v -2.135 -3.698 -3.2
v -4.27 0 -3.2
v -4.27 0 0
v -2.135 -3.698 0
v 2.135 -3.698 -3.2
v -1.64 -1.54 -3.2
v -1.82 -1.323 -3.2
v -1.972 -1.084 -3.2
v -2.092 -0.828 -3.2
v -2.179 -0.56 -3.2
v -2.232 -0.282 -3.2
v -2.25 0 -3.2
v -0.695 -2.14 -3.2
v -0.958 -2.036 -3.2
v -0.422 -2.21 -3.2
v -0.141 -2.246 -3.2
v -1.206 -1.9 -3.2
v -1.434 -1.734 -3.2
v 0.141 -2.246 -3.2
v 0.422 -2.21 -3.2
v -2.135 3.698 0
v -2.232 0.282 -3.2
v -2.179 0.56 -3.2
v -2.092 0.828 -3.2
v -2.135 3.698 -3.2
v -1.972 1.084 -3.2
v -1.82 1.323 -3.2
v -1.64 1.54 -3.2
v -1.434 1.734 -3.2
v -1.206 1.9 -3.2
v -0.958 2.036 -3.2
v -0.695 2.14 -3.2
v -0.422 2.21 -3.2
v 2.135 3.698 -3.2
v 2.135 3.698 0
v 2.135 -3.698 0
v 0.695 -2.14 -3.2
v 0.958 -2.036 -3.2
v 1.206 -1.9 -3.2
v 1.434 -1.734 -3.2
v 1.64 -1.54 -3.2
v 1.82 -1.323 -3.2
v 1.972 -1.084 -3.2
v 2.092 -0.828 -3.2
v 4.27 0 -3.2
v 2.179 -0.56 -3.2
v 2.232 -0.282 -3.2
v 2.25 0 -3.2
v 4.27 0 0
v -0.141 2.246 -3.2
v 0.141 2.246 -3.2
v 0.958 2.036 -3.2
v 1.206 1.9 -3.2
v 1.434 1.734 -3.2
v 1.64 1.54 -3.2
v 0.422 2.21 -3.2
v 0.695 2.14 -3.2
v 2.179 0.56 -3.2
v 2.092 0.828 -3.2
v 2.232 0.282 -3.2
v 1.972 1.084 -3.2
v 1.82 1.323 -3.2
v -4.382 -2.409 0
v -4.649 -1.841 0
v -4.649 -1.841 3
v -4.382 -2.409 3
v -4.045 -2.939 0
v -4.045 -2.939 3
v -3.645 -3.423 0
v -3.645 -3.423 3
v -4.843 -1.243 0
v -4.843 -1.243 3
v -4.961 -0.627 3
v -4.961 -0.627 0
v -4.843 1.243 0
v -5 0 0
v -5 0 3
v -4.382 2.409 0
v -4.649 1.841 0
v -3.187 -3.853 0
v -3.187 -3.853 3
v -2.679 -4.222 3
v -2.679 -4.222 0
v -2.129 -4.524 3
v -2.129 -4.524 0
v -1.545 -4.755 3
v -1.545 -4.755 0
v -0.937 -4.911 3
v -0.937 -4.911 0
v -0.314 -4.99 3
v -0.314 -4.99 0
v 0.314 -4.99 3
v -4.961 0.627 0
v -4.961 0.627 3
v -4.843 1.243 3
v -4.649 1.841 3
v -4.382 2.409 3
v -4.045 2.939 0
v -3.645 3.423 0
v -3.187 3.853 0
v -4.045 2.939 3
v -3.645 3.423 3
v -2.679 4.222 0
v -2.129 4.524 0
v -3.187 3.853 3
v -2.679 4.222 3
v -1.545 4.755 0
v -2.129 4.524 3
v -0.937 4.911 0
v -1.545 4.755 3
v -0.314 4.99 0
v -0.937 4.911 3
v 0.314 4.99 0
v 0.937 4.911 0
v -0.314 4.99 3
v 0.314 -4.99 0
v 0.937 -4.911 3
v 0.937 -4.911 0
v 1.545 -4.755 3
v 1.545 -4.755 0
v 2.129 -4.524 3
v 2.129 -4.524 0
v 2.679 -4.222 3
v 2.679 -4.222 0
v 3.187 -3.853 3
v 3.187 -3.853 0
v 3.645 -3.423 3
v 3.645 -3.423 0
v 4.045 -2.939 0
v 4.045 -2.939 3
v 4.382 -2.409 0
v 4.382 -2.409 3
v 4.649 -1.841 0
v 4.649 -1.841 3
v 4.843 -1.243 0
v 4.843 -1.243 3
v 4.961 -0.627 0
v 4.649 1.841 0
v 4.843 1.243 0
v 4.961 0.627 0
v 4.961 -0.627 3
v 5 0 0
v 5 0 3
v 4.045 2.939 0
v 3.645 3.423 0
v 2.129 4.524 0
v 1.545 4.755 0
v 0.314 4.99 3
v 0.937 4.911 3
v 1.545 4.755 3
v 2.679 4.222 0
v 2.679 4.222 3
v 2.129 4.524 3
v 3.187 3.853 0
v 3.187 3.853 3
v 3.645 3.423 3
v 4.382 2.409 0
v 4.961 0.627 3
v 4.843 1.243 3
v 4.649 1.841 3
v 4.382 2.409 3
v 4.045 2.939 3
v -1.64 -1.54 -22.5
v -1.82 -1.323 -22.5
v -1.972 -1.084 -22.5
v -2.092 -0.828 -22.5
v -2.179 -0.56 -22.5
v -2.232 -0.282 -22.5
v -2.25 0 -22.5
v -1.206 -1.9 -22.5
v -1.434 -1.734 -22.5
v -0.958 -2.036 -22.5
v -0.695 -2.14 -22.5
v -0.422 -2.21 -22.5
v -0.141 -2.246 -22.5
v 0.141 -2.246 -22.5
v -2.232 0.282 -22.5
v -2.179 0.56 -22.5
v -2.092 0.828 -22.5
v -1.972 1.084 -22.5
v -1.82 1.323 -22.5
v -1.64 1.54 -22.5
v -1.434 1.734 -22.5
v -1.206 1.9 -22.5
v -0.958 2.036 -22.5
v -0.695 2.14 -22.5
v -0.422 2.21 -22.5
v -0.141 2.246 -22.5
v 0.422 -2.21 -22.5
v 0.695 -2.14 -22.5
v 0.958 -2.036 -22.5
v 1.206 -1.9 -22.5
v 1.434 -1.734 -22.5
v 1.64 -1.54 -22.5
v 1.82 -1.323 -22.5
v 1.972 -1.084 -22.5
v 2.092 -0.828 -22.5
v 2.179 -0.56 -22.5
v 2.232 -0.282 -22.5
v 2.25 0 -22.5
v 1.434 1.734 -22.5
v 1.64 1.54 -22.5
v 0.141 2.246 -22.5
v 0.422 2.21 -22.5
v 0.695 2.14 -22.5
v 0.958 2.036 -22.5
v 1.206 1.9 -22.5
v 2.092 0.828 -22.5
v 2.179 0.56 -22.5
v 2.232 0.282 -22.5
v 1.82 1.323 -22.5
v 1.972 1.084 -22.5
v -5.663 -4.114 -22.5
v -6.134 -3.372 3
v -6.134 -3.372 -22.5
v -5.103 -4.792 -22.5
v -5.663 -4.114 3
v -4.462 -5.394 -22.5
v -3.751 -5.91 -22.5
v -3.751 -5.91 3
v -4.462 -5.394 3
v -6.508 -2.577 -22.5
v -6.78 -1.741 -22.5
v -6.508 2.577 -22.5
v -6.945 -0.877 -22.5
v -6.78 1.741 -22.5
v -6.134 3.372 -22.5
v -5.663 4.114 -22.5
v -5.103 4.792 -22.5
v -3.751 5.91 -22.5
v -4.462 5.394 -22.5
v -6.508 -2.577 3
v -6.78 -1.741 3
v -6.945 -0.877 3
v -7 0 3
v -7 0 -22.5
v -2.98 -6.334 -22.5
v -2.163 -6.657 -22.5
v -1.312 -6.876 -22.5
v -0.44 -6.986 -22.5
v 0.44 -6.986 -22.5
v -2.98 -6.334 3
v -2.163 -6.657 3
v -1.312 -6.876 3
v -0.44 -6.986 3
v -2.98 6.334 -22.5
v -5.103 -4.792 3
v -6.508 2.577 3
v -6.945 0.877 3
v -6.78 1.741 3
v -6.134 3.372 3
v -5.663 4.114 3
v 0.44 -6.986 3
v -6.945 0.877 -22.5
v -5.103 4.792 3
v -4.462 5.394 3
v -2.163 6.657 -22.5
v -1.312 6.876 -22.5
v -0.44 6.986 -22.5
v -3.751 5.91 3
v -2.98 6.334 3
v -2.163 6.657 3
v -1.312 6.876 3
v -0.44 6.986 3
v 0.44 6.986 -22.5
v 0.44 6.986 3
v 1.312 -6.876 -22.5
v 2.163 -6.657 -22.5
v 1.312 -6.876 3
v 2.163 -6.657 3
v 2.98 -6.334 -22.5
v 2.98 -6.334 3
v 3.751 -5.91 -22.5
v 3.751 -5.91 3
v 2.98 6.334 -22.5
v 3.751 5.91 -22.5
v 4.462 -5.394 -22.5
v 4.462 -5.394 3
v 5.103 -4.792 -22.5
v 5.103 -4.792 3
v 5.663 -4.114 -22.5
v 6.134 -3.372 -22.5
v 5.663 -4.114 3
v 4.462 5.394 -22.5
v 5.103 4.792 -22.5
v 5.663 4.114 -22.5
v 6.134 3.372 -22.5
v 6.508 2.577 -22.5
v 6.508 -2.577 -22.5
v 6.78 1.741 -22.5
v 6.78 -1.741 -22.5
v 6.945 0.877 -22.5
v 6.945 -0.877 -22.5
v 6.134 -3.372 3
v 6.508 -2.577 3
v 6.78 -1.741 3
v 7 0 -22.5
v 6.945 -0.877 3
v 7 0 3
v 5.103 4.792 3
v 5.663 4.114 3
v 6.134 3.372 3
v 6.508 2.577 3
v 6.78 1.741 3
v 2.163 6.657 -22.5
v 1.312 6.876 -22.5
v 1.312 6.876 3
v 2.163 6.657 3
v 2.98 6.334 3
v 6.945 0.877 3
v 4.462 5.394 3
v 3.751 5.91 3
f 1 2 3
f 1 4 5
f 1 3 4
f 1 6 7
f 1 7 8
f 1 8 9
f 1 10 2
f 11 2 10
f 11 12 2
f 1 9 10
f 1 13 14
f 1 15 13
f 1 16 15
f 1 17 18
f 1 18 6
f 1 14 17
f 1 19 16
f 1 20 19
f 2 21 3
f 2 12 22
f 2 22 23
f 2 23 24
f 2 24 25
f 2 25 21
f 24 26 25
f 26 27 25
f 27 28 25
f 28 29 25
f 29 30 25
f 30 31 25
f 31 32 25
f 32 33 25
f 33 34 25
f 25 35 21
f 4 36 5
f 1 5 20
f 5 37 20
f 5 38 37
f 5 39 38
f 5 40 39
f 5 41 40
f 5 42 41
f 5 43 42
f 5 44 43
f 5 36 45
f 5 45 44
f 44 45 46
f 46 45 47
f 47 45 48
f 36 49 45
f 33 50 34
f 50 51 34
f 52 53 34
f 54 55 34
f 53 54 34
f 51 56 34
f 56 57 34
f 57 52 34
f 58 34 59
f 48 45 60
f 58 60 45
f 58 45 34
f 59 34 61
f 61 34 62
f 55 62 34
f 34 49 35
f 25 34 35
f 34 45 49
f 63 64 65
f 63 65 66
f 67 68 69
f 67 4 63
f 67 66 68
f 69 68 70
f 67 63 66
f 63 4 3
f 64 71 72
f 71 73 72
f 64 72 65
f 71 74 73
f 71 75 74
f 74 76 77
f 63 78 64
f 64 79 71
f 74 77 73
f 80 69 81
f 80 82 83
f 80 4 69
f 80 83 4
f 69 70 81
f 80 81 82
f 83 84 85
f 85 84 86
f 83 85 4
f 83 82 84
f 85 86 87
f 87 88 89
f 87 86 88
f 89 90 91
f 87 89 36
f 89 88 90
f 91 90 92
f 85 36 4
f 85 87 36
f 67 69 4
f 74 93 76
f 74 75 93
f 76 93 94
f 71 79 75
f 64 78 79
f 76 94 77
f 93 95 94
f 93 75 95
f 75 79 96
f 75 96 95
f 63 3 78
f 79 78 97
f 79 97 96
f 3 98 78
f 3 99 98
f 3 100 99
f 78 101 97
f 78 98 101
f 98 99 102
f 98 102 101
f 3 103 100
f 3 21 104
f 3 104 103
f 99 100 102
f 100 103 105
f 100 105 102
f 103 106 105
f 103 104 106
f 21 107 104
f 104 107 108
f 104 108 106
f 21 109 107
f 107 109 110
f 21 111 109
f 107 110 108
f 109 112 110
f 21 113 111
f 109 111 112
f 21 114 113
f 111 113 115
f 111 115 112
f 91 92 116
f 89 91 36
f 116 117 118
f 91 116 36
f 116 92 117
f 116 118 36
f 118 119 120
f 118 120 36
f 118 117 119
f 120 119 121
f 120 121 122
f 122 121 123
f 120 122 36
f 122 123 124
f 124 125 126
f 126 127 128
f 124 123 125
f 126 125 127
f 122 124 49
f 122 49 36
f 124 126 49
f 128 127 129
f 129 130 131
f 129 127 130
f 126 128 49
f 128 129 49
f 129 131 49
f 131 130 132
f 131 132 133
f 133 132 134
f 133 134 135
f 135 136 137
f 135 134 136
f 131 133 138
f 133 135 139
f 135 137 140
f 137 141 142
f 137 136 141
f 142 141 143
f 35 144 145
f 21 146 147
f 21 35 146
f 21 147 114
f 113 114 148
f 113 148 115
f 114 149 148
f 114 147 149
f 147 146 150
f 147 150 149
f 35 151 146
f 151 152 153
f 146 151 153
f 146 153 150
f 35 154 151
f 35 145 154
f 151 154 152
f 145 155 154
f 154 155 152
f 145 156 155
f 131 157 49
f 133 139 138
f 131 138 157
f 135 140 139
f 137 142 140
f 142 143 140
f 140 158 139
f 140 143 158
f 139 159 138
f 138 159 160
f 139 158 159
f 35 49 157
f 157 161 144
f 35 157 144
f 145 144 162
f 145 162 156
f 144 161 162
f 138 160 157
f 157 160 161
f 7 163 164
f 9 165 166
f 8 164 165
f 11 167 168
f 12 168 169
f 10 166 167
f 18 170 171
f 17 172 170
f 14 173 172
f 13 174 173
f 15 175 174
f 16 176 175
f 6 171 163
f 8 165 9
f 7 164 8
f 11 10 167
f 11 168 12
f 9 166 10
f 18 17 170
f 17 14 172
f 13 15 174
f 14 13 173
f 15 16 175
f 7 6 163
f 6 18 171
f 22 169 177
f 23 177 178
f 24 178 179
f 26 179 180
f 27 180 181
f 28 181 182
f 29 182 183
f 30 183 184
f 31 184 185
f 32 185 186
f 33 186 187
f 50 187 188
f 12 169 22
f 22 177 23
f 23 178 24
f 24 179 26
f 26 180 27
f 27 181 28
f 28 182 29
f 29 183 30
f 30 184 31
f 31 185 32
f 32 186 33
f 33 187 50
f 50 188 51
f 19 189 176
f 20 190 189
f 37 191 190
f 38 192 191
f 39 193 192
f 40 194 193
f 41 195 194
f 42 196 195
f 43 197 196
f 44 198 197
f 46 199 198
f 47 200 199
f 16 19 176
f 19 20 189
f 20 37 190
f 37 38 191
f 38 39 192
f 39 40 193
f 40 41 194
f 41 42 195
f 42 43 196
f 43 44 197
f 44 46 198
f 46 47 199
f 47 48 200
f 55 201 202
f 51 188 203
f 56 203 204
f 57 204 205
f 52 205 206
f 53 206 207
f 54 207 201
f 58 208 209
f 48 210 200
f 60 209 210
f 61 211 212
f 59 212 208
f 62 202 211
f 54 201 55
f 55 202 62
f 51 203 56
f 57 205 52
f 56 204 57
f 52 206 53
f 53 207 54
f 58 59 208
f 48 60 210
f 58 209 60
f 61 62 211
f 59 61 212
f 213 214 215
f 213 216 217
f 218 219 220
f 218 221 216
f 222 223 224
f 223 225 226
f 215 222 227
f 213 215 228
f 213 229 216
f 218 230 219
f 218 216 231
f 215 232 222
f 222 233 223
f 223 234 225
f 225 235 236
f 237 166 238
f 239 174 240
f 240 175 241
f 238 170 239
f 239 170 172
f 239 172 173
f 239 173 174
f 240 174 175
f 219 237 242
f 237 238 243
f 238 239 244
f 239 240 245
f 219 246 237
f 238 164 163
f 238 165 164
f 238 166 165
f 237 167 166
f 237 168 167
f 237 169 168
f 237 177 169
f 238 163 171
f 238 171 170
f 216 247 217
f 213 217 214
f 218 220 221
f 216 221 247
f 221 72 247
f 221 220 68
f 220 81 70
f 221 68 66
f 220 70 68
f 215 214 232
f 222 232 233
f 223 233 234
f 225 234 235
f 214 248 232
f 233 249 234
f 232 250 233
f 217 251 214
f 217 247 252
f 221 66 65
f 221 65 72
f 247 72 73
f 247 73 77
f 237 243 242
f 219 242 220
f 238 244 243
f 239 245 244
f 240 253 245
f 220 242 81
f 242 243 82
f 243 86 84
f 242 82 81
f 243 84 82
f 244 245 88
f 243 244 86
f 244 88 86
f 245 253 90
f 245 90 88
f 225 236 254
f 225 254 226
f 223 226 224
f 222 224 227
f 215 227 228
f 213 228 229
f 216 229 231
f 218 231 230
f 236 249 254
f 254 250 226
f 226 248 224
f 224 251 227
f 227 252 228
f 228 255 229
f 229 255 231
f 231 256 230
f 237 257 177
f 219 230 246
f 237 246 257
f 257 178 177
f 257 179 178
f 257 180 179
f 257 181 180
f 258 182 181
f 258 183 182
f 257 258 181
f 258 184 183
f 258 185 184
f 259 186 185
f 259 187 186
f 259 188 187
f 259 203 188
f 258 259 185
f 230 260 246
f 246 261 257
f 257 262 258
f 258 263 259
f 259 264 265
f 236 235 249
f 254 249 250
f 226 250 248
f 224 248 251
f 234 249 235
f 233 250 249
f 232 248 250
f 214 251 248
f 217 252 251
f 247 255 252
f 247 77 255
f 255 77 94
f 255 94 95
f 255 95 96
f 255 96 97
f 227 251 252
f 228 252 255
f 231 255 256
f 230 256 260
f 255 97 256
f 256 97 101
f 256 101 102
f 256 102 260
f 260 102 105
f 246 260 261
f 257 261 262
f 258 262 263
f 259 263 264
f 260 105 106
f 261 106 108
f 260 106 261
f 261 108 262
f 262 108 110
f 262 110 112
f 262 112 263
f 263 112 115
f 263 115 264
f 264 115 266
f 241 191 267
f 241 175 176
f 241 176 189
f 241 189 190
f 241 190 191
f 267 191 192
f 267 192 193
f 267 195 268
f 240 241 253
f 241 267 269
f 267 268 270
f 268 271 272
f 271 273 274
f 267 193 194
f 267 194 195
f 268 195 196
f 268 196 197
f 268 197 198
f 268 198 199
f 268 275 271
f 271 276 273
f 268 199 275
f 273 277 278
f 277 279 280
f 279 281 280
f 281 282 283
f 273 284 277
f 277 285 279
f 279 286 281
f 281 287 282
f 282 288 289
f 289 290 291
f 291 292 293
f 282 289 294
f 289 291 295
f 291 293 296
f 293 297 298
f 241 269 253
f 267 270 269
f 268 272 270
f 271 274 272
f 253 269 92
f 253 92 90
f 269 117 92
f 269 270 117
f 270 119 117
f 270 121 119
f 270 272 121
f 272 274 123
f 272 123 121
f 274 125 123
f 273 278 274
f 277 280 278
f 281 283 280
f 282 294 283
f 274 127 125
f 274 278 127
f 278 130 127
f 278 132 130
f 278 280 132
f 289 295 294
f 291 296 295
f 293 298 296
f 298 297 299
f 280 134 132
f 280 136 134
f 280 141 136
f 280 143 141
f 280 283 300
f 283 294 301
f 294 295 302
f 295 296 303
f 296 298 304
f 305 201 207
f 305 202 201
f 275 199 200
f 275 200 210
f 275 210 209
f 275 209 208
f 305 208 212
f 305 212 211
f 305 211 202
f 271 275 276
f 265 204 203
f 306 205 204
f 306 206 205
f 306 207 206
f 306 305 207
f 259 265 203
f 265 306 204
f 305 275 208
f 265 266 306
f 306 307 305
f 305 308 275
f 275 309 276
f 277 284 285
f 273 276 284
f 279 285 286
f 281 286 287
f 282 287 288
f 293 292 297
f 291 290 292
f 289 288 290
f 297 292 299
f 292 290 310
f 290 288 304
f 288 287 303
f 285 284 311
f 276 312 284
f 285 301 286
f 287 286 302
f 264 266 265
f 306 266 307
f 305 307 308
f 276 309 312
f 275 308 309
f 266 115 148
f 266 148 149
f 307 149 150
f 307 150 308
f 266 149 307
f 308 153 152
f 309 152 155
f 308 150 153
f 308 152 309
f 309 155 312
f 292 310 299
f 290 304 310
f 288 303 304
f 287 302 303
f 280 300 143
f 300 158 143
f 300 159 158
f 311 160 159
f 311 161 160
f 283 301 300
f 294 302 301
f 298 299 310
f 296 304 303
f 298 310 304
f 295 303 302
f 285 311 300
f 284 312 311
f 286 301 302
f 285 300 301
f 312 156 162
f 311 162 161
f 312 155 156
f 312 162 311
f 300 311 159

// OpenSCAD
$fn = 50;

difference() {
	union() {
		translate(v = [0, 0, -22.5]) {
			cylinder(h = 25.5, r = 7.0);
		}
	}
	union() {
		translate(v = [0, 0, 0]) {
			rotate(a = [0, 0, 0]) {
				difference() {
					union() {
						translate(v = [0, 0, -3.2]) {
							linear_extrude(height = 3.2) {
								polygon(points = [[4.2698, 0.0], [2.1349000000000005, 3.697755269078796], [-2.134899999999999, 3.6977552690787965], [-4.2698, 5.228996902999369e-16], [-2.134900000000002, -3.6977552690787956], [2.1348999999999974, -3.697755269078798]]);
							}
						}
					}
					union();
				}
			}
		}
		#cylinder(h = 3, r = 5.0);
		#translate(v = [0, 0, -100.0]) {
			cylinder(h = 200, r = 2.25);
		}
	}
}
